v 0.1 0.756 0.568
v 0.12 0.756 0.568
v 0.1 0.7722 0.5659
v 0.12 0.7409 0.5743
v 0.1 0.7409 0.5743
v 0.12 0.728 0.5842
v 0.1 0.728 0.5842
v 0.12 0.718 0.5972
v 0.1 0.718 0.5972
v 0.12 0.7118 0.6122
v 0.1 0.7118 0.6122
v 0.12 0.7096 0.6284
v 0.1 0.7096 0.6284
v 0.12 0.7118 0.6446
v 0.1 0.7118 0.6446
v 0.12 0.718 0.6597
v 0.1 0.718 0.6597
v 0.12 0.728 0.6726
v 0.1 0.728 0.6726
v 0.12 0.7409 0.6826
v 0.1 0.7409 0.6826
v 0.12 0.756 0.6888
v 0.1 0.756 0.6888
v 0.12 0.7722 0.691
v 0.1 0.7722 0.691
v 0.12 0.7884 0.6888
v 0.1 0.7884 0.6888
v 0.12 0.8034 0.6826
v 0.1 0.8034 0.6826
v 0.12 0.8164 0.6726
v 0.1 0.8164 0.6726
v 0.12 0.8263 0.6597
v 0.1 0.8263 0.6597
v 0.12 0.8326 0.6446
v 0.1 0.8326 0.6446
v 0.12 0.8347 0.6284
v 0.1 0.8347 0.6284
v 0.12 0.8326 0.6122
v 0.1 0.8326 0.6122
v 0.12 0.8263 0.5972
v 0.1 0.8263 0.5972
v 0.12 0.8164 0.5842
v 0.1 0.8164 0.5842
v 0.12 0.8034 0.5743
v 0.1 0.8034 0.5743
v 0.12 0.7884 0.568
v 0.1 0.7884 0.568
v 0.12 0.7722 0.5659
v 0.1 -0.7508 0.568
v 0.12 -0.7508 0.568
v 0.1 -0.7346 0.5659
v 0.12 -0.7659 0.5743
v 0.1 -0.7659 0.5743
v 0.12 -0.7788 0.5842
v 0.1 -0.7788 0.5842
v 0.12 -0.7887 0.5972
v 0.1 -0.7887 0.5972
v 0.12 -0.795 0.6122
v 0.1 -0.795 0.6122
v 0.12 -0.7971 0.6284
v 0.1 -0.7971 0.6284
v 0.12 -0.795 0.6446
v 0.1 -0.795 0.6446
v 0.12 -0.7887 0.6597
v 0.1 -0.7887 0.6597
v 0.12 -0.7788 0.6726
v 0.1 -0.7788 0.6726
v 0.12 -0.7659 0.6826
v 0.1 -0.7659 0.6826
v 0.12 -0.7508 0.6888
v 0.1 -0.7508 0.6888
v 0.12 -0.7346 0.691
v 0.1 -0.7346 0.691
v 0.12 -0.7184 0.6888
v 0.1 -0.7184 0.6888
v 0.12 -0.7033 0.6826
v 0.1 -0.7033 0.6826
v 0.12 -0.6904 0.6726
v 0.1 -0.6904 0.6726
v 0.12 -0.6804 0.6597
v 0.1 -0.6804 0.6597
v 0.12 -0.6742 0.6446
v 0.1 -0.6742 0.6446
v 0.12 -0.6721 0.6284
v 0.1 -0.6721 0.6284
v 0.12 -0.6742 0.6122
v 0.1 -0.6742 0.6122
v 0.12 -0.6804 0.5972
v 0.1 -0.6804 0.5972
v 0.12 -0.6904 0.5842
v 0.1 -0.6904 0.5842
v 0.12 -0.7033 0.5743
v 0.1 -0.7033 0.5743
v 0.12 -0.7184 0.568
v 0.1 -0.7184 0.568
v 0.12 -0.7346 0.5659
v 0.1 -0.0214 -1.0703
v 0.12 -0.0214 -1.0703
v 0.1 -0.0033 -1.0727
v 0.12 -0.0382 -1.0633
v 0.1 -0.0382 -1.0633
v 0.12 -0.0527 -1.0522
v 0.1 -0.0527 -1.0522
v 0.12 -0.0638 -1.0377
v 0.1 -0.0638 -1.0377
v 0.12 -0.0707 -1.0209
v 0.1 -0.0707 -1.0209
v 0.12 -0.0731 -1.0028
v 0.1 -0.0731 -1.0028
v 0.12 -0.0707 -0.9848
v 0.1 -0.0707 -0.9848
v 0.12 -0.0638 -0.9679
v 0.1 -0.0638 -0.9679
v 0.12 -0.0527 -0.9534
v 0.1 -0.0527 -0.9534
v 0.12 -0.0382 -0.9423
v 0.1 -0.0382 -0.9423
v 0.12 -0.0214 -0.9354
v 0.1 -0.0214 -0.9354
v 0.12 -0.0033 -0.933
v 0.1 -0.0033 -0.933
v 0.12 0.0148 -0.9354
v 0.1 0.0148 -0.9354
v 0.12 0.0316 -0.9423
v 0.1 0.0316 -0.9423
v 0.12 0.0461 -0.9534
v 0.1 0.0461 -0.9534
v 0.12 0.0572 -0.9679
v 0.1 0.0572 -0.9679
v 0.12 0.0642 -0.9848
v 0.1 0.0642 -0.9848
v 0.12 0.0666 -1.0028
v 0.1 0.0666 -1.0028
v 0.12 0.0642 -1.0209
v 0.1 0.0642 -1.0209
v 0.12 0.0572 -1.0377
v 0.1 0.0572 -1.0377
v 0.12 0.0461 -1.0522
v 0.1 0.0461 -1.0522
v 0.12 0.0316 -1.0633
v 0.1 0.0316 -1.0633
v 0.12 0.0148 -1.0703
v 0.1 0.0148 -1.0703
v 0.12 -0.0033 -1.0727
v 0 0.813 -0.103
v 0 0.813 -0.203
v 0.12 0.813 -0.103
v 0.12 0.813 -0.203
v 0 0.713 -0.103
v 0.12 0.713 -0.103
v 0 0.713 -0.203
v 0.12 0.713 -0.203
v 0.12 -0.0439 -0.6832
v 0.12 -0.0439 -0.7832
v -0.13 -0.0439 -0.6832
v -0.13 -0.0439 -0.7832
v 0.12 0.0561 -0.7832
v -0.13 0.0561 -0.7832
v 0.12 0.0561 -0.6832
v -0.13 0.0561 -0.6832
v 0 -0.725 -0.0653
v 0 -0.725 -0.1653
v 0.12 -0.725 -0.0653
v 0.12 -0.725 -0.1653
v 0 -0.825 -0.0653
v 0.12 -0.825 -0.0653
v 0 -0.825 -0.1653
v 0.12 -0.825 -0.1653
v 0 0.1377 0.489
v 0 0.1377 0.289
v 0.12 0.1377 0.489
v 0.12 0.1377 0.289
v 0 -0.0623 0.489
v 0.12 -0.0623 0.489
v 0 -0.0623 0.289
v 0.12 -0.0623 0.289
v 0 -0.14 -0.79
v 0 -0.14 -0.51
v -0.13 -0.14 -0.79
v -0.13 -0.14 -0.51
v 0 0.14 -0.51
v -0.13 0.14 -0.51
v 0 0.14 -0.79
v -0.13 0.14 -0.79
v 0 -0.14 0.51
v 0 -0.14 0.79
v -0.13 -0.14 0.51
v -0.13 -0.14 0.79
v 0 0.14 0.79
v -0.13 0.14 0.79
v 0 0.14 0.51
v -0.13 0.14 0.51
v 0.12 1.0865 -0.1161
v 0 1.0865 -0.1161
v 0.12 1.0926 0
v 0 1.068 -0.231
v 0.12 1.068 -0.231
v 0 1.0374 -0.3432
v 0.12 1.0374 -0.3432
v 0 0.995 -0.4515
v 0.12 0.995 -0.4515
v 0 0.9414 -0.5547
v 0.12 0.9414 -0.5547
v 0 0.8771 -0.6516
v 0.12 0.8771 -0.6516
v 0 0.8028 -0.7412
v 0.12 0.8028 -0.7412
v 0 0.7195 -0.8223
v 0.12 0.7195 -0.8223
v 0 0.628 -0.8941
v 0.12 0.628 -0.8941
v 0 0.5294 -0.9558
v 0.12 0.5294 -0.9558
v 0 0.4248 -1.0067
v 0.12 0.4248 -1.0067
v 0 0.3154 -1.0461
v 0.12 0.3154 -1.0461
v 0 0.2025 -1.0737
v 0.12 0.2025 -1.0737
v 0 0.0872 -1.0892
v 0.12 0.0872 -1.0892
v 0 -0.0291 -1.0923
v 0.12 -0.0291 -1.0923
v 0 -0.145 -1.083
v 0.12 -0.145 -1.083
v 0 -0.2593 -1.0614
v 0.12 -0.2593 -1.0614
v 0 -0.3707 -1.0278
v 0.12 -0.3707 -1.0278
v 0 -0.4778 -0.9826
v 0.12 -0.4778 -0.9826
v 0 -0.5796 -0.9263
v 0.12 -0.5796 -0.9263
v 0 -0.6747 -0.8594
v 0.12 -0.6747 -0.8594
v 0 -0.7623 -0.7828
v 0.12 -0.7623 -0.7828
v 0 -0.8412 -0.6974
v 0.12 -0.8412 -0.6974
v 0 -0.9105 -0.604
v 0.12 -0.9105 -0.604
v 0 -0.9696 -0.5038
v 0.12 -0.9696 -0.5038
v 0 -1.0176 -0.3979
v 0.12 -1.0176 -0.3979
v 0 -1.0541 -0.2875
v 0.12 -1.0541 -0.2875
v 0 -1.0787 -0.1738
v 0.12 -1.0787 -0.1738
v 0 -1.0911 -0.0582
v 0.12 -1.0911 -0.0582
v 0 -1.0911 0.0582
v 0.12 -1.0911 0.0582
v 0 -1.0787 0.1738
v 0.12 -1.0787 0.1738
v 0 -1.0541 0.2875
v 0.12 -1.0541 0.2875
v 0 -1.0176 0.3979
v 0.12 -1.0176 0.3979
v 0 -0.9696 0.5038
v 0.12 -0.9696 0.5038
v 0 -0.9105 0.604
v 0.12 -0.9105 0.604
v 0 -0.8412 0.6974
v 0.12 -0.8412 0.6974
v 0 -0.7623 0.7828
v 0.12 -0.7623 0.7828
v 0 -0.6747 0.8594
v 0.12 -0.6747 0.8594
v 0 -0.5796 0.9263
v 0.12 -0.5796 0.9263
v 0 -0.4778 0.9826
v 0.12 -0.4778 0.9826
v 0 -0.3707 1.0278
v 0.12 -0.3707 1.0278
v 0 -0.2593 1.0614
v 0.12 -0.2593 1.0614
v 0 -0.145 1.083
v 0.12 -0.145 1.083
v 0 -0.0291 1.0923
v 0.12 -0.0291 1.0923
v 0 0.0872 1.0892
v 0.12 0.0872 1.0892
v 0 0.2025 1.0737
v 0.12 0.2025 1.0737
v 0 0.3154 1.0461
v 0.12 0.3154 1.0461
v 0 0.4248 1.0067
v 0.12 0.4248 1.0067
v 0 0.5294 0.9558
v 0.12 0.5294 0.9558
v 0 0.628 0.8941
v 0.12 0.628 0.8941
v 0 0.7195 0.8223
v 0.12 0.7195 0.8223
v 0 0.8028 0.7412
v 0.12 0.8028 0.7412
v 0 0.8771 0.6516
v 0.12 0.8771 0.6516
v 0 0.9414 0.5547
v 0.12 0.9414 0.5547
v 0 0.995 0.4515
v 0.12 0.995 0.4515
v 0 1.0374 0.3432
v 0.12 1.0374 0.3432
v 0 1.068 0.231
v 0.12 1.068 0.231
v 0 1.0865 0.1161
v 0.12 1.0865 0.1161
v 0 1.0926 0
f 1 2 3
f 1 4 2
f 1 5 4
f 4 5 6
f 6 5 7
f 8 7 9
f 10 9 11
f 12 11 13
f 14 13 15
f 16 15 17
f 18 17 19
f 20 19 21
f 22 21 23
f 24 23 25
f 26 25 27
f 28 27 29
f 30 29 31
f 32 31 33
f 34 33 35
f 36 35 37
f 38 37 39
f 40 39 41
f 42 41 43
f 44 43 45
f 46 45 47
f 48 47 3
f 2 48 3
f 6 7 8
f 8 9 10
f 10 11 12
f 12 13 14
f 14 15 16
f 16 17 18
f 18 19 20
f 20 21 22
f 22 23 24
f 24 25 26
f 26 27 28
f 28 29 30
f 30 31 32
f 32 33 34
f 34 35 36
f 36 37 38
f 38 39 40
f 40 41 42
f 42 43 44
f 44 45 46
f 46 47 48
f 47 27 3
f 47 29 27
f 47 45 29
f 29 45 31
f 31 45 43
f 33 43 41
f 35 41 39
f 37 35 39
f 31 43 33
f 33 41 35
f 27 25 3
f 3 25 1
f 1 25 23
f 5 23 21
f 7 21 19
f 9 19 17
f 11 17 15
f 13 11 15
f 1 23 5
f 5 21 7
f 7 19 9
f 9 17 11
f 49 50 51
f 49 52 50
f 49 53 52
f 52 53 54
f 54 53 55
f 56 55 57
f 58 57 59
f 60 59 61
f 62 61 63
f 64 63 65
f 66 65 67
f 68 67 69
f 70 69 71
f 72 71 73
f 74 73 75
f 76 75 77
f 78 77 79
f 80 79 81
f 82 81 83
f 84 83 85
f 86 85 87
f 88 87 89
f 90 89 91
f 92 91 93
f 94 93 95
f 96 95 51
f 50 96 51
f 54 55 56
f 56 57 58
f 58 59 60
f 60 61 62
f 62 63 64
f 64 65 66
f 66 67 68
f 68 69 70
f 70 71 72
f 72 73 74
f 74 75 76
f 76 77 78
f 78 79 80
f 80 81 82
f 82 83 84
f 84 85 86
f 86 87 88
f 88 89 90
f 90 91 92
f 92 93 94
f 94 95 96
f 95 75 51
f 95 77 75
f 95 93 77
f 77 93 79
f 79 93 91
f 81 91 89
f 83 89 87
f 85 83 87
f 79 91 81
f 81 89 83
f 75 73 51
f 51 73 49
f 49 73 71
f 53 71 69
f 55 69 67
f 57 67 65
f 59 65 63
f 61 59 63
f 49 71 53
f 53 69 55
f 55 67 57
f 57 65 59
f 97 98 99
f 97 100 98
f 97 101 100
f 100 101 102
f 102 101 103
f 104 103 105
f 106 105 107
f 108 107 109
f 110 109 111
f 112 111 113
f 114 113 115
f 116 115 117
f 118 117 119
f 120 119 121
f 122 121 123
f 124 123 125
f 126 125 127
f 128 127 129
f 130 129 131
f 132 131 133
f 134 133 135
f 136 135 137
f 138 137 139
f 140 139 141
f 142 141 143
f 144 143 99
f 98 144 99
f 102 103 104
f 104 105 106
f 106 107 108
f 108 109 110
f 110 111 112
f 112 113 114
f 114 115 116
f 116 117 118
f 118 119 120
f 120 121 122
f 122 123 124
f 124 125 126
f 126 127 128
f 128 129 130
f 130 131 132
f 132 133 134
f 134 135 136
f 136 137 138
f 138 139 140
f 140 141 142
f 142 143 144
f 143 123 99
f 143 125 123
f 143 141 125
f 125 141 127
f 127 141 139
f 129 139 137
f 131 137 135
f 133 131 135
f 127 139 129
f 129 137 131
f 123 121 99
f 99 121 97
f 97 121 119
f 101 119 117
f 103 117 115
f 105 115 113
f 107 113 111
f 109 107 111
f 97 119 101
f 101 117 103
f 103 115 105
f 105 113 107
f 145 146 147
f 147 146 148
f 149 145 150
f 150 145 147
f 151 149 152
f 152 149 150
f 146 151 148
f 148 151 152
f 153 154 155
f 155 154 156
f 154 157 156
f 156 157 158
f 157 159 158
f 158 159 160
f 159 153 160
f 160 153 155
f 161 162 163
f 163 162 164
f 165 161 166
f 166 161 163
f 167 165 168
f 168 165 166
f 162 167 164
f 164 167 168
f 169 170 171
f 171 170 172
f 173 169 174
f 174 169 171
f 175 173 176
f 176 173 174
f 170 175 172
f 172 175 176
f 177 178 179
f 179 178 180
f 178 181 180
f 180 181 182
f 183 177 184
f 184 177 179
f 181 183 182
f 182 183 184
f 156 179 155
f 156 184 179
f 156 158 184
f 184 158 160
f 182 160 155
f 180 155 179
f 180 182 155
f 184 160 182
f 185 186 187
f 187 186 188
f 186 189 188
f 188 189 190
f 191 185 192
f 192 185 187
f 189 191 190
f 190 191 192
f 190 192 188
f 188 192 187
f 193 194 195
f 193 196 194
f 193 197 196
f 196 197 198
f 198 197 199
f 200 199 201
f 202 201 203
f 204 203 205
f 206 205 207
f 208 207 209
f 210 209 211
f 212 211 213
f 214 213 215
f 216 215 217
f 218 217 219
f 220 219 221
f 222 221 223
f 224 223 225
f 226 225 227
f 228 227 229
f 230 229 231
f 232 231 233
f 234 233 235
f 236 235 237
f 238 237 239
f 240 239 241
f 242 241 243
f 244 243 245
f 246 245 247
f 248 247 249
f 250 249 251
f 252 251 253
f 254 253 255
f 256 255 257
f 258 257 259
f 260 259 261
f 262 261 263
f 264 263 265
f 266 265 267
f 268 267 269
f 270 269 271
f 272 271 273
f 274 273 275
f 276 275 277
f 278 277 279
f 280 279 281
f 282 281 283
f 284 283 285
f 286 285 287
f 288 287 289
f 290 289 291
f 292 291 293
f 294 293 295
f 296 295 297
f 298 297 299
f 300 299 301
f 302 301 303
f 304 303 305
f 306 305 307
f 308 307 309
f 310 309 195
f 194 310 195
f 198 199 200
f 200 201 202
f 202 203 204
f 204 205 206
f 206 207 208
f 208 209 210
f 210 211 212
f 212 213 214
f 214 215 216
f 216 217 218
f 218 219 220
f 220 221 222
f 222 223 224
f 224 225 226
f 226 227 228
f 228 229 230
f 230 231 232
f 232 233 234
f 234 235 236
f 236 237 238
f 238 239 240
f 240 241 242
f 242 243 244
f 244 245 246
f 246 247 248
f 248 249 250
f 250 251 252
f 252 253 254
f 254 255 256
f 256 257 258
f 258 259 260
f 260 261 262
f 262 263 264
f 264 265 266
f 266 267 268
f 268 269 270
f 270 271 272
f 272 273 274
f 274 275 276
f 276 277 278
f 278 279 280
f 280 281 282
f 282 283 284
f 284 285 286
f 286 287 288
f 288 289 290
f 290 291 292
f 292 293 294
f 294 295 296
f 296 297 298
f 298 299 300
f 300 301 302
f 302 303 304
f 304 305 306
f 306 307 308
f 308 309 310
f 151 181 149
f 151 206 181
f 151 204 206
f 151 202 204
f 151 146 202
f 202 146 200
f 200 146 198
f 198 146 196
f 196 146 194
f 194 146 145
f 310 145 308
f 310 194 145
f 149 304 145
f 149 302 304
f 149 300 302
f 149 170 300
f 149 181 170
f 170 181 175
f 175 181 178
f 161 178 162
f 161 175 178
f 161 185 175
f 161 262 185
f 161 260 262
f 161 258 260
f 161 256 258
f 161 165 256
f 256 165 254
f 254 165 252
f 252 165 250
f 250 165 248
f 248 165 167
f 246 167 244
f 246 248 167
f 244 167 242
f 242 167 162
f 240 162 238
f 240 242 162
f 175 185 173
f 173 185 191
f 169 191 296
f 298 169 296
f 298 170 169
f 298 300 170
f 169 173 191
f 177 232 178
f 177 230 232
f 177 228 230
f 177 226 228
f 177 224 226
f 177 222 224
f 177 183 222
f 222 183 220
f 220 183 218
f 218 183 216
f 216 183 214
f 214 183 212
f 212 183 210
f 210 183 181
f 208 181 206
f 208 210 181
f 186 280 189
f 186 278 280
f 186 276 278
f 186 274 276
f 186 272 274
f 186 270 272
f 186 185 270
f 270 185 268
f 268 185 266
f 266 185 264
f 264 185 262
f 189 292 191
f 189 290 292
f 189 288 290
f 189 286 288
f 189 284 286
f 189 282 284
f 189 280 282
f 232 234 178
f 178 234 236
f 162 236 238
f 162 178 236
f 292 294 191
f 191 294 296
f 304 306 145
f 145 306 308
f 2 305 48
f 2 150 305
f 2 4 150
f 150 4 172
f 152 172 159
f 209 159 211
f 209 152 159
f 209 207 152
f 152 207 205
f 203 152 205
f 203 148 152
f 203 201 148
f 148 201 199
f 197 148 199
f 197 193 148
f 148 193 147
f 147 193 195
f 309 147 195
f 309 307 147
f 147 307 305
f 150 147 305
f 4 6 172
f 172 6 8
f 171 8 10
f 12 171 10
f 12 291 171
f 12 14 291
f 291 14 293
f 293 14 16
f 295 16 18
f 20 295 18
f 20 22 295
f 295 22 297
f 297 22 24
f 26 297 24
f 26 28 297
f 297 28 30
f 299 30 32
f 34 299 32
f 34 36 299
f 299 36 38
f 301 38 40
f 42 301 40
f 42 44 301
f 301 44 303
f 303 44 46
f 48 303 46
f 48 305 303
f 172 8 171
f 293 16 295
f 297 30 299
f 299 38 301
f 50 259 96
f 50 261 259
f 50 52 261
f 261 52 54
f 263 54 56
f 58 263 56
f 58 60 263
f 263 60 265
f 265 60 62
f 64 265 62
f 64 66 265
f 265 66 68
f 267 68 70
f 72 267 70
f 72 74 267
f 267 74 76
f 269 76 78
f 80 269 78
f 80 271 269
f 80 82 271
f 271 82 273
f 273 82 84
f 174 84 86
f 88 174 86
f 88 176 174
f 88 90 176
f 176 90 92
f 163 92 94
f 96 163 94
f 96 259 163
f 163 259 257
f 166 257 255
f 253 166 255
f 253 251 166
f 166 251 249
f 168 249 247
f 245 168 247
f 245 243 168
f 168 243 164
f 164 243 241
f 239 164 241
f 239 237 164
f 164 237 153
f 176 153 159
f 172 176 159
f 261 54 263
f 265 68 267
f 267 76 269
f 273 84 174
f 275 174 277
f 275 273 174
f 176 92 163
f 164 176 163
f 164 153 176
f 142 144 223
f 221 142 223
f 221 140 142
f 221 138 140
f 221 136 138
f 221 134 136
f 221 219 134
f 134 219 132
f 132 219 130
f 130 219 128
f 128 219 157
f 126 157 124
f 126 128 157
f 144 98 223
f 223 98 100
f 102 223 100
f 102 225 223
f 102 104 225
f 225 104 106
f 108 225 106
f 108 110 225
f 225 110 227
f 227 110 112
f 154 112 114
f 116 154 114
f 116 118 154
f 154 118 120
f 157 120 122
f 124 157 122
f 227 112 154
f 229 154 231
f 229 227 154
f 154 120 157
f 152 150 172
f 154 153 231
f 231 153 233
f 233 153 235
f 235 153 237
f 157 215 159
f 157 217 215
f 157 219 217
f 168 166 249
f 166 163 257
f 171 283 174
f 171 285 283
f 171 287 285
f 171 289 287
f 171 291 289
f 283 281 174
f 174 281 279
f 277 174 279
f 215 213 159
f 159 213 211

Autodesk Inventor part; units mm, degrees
ref_plane "YZ Plane" through (0, 0, 0) normal (1, 0, 0) x (0, 1, 0)
ref_plane "XZ Plane" through (0, 0, 0) normal (0, 1, 0) x (-1, 0, 0)
ref_plane "XY Plane" through (0, 0, 0) normal (0, 0, 1) x (1, 0, 0)
sketch "Boceto1" plane through (0, 0, 0) normal (1, 0, 0) x (0, 1, 0)
  circle A0 centre (0, 0) radius 1.15
  circle A1 centre (0, 0) radius 1.0926
extrude "Extrusión1" add sketch "Boceto1" along normal blind 0.12 contours A1
sketch "Boceto2" plane through (0.12, 0, 0) normal (1, 0, 0) x (0, 0, -1)
  circle A0 centre (0, 0) radius 1.0926
  line L0 (0.79, 0.14) -> (0.51, 0.14)
  line L1 (0.51, 0.14) -> (0.51, -0.14)
  line L2 (0.51, -0.14) -> (0.79, -0.14)
  line L3 (0.79, -0.14) -> (0.79, 0.14)
  line L4 (-0.51, 0.14) -> (-0.79, 0.14)
  line L5 (-0.79, 0.14) -> (-0.79, -0.14)
  line L6 (-0.79, -0.14) -> (-0.51, -0.14)
  line L7 (-0.51, -0.14) -> (-0.51, 0.14)
extrude "Extrusión2" add sketch "Boceto2" against normal blind 0.25 contours L3 L2 L1 L0 | L7 L6 L5 L4
sketch "Boceto3" plane through (0.12, 0, 0) normal (1, 0, 0) x (0, 0, -1)
  circle A0 centre (0, 0) radius 1.0926
  circle A1 centre (-0.389, 0.0377) radius 0.6841
  circle A2 centre (-0.6284, -0.7346) radius 0.0625
  circle A3 centre (-0.6284, 0.7722) radius 0.0625
  line L0 (-0.2217, -0.7829) -> (-0.172, -0.9902)
  line L1 (0.4827, -0.8628) -> (0.4482, -0.6469)
  arc A4 (0.4827, -0.8628) -> (-0.172, -0.9902) centre (0.3728, -2.0444) ccw
  arc A5 (-0.2217, -0.7829) -> (-0.0098, -0.6943) centre (-0.3611, -0.1519) ccw
  arc A6 (0.2046, -0.6494) -> (-0.0098, -0.6943) centre (0.1354, -0.8536) ccw
  arc A7 (0.2046, -0.6494) -> (0.4482, -0.6469) centre (0.3201, -0.0382) ccw
  line L2 (0.623, 0.1405) -> (0.623, -0.1283)
  line L3 (0.8433, -0.1283) -> (0.8433, 0.1405)
  arc A8 (0.8433, 0.1405) -> (0.623, 0.1405) centre (0.7332, 0.1405) ccw
  arc A9 (0.623, -0.1283) -> (0.8433, -0.1283) centre (0.7332, -0.1283) ccw
  circle A10 centre (1.0028, -0.0033) radius 0.0698
  line L4 (0.48, 0.6571) -> (0.5054, 0.8687)
  line L5 (-0.1528, 0.9768) -> (-0.1954, 0.7624)
  arc A11 (-0.1528, 0.9768) -> (0.5054, 0.8687) centre (0.3609, 2.0465) ccw
  arc A12 (0.48, 0.6571) -> (0.2505, 0.6476) centre (0.3914, 0.0169) ccw
  arc A13 (0.0338, 0.6801) -> (0.2505, 0.6476) centre (0.1696, 0.8475) ccw
  arc A14 (0.0338, 0.6801) -> (-0.1954, 0.7624) centre (-0.2869, 0.147) ccw
  line L6 (-0.389, 0.0377) -> (-0.489, 0.0377)
  line L7 (-0.489, 0.0377) -> (-0.489, 0.1377)
  line L8 (-0.489, 0.1377) -> (-0.289, 0.1377)
  line L9 (-0.289, 0.1377) -> (-0.289, -0.0623)
  line L10 (-0.289, -0.0623) -> (-0.489, -0.0623)
  line L11 (-0.489, -0.0623) -> (-0.489, 0.0377)
  line L12 (0.6832, 0.0061) -> (0.6832, 0.0561)
  line L13 (0.6832, 0.0561) -> (0.7832, 0.0561)
  line L14 (0.7832, 0.0561) -> (0.7832, -0.0439)
  line L15 (0.7832, -0.0439) -> (0.6832, -0.0439)
  line L16 (0.6832, -0.0439) -> (0.6832, 0.0061)
  line L17 (0.103, 0.813) -> (0.103, 0.713)
  line L18 (0.103, 0.713) -> (0.203, 0.713)
  line L19 (0.203, 0.713) -> (0.203, 0.813)
  line L20 (0.203, 0.813) -> (0.103, 0.813)
  line L21 (0.0653, -0.725) -> (0.0653, -0.825)
  line L22 (0.0653, -0.825) -> (0.1653, -0.825)
  line L23 (0.1653, -0.825) -> (0.1653, -0.725)
  line L24 (0.1653, -0.725) -> (0.0653, -0.725)
  dimension "d6" = 0.1
  dimension "d7" = 0.1
  dimension "d8" = 0.2
  dimension "d9" = 0.2
  dimension "d10" = 0.2
  dimension "d12" = 0.05
  dimension "d13" = 0.1
  dimension "d14" = 0.1
  dimension "d15" = 0.1
  dimension "d16" = 0.1
  dimension "d17" = 0.1
  dimension "d18" = 0.1
  dimension "d19" = 0.1
  dimension "d20" = 0.1
  dimension "d21" = 0.1
extrude "Extrusión3" cut sketch "Boceto3" against normal blind 0.25 contours L7 L8 L9 L10 L11 | L12 L13 L14 L15 L16 | L20 L19 L18 L17 | L24 L23 L22 L21
sketch "Boceto4" plane through (0.12, 0, 0) normal (1, 0, 0) x (0, 0, -1)
  circle A0 centre (0, 0) radius 1.0926
  circle A1 centre (-0.389, 0.0377) radius 0.6841
  circle A2 centre (-0.6284, -0.7346) radius 0.0625
  circle A3 centre (-0.6284, 0.7722) radius 0.0625
  line L0 (-0.2217, -0.7829) -> (-0.172, -0.9902)
  line L1 (0.4827, -0.8628) -> (0.4482, -0.6469)
  arc A4 (0.4827, -0.8628) -> (-0.172, -0.9902) centre (0.3728, -2.0444) ccw
  arc A5 (-0.2217, -0.7829) -> (-0.0098, -0.6943) centre (-0.3611, -0.1519) ccw
  arc A6 (0.2046, -0.6494) -> (-0.0098, -0.6943) centre (0.1354, -0.8536) ccw
  arc A7 (0.2046, -0.6494) -> (0.4482, -0.6469) centre (0.3201, -0.0382) ccw
  line L2 (0.623, 0.1405) -> (0.623, -0.1283)
  line L3 (0.8433, -0.1283) -> (0.8433, 0.1405)
  arc A8 (0.8433, 0.1405) -> (0.623, 0.1405) centre (0.7332, 0.1405) ccw
  arc A9 (0.623, -0.1283) -> (0.8433, -0.1283) centre (0.7332, -0.1283) ccw
  circle A10 centre (1.0028, -0.0033) radius 0.0698
  line L4 (0.48, 0.6571) -> (0.5054, 0.8687)
  line L5 (-0.1528, 0.9768) -> (-0.1954, 0.7624)
  arc A11 (-0.1528, 0.9768) -> (0.5054, 0.8687) centre (0.3609, 2.0465) ccw
  arc A12 (0.48, 0.6571) -> (0.2505, 0.6476) centre (0.3914, 0.0169) ccw
  arc A13 (0.0338, 0.6801) -> (0.2505, 0.6476) centre (0.1696, 0.8475) ccw
  arc A14 (0.0338, 0.6801) -> (-0.1954, 0.7624) centre (-0.2869, 0.147) ccw
  point P0 (0, 0)
extrude "Extrusión4" cut sketch "Boceto4" against normal blind 0.02 contours A2 | A3 | A10
properties part number "ET16"
